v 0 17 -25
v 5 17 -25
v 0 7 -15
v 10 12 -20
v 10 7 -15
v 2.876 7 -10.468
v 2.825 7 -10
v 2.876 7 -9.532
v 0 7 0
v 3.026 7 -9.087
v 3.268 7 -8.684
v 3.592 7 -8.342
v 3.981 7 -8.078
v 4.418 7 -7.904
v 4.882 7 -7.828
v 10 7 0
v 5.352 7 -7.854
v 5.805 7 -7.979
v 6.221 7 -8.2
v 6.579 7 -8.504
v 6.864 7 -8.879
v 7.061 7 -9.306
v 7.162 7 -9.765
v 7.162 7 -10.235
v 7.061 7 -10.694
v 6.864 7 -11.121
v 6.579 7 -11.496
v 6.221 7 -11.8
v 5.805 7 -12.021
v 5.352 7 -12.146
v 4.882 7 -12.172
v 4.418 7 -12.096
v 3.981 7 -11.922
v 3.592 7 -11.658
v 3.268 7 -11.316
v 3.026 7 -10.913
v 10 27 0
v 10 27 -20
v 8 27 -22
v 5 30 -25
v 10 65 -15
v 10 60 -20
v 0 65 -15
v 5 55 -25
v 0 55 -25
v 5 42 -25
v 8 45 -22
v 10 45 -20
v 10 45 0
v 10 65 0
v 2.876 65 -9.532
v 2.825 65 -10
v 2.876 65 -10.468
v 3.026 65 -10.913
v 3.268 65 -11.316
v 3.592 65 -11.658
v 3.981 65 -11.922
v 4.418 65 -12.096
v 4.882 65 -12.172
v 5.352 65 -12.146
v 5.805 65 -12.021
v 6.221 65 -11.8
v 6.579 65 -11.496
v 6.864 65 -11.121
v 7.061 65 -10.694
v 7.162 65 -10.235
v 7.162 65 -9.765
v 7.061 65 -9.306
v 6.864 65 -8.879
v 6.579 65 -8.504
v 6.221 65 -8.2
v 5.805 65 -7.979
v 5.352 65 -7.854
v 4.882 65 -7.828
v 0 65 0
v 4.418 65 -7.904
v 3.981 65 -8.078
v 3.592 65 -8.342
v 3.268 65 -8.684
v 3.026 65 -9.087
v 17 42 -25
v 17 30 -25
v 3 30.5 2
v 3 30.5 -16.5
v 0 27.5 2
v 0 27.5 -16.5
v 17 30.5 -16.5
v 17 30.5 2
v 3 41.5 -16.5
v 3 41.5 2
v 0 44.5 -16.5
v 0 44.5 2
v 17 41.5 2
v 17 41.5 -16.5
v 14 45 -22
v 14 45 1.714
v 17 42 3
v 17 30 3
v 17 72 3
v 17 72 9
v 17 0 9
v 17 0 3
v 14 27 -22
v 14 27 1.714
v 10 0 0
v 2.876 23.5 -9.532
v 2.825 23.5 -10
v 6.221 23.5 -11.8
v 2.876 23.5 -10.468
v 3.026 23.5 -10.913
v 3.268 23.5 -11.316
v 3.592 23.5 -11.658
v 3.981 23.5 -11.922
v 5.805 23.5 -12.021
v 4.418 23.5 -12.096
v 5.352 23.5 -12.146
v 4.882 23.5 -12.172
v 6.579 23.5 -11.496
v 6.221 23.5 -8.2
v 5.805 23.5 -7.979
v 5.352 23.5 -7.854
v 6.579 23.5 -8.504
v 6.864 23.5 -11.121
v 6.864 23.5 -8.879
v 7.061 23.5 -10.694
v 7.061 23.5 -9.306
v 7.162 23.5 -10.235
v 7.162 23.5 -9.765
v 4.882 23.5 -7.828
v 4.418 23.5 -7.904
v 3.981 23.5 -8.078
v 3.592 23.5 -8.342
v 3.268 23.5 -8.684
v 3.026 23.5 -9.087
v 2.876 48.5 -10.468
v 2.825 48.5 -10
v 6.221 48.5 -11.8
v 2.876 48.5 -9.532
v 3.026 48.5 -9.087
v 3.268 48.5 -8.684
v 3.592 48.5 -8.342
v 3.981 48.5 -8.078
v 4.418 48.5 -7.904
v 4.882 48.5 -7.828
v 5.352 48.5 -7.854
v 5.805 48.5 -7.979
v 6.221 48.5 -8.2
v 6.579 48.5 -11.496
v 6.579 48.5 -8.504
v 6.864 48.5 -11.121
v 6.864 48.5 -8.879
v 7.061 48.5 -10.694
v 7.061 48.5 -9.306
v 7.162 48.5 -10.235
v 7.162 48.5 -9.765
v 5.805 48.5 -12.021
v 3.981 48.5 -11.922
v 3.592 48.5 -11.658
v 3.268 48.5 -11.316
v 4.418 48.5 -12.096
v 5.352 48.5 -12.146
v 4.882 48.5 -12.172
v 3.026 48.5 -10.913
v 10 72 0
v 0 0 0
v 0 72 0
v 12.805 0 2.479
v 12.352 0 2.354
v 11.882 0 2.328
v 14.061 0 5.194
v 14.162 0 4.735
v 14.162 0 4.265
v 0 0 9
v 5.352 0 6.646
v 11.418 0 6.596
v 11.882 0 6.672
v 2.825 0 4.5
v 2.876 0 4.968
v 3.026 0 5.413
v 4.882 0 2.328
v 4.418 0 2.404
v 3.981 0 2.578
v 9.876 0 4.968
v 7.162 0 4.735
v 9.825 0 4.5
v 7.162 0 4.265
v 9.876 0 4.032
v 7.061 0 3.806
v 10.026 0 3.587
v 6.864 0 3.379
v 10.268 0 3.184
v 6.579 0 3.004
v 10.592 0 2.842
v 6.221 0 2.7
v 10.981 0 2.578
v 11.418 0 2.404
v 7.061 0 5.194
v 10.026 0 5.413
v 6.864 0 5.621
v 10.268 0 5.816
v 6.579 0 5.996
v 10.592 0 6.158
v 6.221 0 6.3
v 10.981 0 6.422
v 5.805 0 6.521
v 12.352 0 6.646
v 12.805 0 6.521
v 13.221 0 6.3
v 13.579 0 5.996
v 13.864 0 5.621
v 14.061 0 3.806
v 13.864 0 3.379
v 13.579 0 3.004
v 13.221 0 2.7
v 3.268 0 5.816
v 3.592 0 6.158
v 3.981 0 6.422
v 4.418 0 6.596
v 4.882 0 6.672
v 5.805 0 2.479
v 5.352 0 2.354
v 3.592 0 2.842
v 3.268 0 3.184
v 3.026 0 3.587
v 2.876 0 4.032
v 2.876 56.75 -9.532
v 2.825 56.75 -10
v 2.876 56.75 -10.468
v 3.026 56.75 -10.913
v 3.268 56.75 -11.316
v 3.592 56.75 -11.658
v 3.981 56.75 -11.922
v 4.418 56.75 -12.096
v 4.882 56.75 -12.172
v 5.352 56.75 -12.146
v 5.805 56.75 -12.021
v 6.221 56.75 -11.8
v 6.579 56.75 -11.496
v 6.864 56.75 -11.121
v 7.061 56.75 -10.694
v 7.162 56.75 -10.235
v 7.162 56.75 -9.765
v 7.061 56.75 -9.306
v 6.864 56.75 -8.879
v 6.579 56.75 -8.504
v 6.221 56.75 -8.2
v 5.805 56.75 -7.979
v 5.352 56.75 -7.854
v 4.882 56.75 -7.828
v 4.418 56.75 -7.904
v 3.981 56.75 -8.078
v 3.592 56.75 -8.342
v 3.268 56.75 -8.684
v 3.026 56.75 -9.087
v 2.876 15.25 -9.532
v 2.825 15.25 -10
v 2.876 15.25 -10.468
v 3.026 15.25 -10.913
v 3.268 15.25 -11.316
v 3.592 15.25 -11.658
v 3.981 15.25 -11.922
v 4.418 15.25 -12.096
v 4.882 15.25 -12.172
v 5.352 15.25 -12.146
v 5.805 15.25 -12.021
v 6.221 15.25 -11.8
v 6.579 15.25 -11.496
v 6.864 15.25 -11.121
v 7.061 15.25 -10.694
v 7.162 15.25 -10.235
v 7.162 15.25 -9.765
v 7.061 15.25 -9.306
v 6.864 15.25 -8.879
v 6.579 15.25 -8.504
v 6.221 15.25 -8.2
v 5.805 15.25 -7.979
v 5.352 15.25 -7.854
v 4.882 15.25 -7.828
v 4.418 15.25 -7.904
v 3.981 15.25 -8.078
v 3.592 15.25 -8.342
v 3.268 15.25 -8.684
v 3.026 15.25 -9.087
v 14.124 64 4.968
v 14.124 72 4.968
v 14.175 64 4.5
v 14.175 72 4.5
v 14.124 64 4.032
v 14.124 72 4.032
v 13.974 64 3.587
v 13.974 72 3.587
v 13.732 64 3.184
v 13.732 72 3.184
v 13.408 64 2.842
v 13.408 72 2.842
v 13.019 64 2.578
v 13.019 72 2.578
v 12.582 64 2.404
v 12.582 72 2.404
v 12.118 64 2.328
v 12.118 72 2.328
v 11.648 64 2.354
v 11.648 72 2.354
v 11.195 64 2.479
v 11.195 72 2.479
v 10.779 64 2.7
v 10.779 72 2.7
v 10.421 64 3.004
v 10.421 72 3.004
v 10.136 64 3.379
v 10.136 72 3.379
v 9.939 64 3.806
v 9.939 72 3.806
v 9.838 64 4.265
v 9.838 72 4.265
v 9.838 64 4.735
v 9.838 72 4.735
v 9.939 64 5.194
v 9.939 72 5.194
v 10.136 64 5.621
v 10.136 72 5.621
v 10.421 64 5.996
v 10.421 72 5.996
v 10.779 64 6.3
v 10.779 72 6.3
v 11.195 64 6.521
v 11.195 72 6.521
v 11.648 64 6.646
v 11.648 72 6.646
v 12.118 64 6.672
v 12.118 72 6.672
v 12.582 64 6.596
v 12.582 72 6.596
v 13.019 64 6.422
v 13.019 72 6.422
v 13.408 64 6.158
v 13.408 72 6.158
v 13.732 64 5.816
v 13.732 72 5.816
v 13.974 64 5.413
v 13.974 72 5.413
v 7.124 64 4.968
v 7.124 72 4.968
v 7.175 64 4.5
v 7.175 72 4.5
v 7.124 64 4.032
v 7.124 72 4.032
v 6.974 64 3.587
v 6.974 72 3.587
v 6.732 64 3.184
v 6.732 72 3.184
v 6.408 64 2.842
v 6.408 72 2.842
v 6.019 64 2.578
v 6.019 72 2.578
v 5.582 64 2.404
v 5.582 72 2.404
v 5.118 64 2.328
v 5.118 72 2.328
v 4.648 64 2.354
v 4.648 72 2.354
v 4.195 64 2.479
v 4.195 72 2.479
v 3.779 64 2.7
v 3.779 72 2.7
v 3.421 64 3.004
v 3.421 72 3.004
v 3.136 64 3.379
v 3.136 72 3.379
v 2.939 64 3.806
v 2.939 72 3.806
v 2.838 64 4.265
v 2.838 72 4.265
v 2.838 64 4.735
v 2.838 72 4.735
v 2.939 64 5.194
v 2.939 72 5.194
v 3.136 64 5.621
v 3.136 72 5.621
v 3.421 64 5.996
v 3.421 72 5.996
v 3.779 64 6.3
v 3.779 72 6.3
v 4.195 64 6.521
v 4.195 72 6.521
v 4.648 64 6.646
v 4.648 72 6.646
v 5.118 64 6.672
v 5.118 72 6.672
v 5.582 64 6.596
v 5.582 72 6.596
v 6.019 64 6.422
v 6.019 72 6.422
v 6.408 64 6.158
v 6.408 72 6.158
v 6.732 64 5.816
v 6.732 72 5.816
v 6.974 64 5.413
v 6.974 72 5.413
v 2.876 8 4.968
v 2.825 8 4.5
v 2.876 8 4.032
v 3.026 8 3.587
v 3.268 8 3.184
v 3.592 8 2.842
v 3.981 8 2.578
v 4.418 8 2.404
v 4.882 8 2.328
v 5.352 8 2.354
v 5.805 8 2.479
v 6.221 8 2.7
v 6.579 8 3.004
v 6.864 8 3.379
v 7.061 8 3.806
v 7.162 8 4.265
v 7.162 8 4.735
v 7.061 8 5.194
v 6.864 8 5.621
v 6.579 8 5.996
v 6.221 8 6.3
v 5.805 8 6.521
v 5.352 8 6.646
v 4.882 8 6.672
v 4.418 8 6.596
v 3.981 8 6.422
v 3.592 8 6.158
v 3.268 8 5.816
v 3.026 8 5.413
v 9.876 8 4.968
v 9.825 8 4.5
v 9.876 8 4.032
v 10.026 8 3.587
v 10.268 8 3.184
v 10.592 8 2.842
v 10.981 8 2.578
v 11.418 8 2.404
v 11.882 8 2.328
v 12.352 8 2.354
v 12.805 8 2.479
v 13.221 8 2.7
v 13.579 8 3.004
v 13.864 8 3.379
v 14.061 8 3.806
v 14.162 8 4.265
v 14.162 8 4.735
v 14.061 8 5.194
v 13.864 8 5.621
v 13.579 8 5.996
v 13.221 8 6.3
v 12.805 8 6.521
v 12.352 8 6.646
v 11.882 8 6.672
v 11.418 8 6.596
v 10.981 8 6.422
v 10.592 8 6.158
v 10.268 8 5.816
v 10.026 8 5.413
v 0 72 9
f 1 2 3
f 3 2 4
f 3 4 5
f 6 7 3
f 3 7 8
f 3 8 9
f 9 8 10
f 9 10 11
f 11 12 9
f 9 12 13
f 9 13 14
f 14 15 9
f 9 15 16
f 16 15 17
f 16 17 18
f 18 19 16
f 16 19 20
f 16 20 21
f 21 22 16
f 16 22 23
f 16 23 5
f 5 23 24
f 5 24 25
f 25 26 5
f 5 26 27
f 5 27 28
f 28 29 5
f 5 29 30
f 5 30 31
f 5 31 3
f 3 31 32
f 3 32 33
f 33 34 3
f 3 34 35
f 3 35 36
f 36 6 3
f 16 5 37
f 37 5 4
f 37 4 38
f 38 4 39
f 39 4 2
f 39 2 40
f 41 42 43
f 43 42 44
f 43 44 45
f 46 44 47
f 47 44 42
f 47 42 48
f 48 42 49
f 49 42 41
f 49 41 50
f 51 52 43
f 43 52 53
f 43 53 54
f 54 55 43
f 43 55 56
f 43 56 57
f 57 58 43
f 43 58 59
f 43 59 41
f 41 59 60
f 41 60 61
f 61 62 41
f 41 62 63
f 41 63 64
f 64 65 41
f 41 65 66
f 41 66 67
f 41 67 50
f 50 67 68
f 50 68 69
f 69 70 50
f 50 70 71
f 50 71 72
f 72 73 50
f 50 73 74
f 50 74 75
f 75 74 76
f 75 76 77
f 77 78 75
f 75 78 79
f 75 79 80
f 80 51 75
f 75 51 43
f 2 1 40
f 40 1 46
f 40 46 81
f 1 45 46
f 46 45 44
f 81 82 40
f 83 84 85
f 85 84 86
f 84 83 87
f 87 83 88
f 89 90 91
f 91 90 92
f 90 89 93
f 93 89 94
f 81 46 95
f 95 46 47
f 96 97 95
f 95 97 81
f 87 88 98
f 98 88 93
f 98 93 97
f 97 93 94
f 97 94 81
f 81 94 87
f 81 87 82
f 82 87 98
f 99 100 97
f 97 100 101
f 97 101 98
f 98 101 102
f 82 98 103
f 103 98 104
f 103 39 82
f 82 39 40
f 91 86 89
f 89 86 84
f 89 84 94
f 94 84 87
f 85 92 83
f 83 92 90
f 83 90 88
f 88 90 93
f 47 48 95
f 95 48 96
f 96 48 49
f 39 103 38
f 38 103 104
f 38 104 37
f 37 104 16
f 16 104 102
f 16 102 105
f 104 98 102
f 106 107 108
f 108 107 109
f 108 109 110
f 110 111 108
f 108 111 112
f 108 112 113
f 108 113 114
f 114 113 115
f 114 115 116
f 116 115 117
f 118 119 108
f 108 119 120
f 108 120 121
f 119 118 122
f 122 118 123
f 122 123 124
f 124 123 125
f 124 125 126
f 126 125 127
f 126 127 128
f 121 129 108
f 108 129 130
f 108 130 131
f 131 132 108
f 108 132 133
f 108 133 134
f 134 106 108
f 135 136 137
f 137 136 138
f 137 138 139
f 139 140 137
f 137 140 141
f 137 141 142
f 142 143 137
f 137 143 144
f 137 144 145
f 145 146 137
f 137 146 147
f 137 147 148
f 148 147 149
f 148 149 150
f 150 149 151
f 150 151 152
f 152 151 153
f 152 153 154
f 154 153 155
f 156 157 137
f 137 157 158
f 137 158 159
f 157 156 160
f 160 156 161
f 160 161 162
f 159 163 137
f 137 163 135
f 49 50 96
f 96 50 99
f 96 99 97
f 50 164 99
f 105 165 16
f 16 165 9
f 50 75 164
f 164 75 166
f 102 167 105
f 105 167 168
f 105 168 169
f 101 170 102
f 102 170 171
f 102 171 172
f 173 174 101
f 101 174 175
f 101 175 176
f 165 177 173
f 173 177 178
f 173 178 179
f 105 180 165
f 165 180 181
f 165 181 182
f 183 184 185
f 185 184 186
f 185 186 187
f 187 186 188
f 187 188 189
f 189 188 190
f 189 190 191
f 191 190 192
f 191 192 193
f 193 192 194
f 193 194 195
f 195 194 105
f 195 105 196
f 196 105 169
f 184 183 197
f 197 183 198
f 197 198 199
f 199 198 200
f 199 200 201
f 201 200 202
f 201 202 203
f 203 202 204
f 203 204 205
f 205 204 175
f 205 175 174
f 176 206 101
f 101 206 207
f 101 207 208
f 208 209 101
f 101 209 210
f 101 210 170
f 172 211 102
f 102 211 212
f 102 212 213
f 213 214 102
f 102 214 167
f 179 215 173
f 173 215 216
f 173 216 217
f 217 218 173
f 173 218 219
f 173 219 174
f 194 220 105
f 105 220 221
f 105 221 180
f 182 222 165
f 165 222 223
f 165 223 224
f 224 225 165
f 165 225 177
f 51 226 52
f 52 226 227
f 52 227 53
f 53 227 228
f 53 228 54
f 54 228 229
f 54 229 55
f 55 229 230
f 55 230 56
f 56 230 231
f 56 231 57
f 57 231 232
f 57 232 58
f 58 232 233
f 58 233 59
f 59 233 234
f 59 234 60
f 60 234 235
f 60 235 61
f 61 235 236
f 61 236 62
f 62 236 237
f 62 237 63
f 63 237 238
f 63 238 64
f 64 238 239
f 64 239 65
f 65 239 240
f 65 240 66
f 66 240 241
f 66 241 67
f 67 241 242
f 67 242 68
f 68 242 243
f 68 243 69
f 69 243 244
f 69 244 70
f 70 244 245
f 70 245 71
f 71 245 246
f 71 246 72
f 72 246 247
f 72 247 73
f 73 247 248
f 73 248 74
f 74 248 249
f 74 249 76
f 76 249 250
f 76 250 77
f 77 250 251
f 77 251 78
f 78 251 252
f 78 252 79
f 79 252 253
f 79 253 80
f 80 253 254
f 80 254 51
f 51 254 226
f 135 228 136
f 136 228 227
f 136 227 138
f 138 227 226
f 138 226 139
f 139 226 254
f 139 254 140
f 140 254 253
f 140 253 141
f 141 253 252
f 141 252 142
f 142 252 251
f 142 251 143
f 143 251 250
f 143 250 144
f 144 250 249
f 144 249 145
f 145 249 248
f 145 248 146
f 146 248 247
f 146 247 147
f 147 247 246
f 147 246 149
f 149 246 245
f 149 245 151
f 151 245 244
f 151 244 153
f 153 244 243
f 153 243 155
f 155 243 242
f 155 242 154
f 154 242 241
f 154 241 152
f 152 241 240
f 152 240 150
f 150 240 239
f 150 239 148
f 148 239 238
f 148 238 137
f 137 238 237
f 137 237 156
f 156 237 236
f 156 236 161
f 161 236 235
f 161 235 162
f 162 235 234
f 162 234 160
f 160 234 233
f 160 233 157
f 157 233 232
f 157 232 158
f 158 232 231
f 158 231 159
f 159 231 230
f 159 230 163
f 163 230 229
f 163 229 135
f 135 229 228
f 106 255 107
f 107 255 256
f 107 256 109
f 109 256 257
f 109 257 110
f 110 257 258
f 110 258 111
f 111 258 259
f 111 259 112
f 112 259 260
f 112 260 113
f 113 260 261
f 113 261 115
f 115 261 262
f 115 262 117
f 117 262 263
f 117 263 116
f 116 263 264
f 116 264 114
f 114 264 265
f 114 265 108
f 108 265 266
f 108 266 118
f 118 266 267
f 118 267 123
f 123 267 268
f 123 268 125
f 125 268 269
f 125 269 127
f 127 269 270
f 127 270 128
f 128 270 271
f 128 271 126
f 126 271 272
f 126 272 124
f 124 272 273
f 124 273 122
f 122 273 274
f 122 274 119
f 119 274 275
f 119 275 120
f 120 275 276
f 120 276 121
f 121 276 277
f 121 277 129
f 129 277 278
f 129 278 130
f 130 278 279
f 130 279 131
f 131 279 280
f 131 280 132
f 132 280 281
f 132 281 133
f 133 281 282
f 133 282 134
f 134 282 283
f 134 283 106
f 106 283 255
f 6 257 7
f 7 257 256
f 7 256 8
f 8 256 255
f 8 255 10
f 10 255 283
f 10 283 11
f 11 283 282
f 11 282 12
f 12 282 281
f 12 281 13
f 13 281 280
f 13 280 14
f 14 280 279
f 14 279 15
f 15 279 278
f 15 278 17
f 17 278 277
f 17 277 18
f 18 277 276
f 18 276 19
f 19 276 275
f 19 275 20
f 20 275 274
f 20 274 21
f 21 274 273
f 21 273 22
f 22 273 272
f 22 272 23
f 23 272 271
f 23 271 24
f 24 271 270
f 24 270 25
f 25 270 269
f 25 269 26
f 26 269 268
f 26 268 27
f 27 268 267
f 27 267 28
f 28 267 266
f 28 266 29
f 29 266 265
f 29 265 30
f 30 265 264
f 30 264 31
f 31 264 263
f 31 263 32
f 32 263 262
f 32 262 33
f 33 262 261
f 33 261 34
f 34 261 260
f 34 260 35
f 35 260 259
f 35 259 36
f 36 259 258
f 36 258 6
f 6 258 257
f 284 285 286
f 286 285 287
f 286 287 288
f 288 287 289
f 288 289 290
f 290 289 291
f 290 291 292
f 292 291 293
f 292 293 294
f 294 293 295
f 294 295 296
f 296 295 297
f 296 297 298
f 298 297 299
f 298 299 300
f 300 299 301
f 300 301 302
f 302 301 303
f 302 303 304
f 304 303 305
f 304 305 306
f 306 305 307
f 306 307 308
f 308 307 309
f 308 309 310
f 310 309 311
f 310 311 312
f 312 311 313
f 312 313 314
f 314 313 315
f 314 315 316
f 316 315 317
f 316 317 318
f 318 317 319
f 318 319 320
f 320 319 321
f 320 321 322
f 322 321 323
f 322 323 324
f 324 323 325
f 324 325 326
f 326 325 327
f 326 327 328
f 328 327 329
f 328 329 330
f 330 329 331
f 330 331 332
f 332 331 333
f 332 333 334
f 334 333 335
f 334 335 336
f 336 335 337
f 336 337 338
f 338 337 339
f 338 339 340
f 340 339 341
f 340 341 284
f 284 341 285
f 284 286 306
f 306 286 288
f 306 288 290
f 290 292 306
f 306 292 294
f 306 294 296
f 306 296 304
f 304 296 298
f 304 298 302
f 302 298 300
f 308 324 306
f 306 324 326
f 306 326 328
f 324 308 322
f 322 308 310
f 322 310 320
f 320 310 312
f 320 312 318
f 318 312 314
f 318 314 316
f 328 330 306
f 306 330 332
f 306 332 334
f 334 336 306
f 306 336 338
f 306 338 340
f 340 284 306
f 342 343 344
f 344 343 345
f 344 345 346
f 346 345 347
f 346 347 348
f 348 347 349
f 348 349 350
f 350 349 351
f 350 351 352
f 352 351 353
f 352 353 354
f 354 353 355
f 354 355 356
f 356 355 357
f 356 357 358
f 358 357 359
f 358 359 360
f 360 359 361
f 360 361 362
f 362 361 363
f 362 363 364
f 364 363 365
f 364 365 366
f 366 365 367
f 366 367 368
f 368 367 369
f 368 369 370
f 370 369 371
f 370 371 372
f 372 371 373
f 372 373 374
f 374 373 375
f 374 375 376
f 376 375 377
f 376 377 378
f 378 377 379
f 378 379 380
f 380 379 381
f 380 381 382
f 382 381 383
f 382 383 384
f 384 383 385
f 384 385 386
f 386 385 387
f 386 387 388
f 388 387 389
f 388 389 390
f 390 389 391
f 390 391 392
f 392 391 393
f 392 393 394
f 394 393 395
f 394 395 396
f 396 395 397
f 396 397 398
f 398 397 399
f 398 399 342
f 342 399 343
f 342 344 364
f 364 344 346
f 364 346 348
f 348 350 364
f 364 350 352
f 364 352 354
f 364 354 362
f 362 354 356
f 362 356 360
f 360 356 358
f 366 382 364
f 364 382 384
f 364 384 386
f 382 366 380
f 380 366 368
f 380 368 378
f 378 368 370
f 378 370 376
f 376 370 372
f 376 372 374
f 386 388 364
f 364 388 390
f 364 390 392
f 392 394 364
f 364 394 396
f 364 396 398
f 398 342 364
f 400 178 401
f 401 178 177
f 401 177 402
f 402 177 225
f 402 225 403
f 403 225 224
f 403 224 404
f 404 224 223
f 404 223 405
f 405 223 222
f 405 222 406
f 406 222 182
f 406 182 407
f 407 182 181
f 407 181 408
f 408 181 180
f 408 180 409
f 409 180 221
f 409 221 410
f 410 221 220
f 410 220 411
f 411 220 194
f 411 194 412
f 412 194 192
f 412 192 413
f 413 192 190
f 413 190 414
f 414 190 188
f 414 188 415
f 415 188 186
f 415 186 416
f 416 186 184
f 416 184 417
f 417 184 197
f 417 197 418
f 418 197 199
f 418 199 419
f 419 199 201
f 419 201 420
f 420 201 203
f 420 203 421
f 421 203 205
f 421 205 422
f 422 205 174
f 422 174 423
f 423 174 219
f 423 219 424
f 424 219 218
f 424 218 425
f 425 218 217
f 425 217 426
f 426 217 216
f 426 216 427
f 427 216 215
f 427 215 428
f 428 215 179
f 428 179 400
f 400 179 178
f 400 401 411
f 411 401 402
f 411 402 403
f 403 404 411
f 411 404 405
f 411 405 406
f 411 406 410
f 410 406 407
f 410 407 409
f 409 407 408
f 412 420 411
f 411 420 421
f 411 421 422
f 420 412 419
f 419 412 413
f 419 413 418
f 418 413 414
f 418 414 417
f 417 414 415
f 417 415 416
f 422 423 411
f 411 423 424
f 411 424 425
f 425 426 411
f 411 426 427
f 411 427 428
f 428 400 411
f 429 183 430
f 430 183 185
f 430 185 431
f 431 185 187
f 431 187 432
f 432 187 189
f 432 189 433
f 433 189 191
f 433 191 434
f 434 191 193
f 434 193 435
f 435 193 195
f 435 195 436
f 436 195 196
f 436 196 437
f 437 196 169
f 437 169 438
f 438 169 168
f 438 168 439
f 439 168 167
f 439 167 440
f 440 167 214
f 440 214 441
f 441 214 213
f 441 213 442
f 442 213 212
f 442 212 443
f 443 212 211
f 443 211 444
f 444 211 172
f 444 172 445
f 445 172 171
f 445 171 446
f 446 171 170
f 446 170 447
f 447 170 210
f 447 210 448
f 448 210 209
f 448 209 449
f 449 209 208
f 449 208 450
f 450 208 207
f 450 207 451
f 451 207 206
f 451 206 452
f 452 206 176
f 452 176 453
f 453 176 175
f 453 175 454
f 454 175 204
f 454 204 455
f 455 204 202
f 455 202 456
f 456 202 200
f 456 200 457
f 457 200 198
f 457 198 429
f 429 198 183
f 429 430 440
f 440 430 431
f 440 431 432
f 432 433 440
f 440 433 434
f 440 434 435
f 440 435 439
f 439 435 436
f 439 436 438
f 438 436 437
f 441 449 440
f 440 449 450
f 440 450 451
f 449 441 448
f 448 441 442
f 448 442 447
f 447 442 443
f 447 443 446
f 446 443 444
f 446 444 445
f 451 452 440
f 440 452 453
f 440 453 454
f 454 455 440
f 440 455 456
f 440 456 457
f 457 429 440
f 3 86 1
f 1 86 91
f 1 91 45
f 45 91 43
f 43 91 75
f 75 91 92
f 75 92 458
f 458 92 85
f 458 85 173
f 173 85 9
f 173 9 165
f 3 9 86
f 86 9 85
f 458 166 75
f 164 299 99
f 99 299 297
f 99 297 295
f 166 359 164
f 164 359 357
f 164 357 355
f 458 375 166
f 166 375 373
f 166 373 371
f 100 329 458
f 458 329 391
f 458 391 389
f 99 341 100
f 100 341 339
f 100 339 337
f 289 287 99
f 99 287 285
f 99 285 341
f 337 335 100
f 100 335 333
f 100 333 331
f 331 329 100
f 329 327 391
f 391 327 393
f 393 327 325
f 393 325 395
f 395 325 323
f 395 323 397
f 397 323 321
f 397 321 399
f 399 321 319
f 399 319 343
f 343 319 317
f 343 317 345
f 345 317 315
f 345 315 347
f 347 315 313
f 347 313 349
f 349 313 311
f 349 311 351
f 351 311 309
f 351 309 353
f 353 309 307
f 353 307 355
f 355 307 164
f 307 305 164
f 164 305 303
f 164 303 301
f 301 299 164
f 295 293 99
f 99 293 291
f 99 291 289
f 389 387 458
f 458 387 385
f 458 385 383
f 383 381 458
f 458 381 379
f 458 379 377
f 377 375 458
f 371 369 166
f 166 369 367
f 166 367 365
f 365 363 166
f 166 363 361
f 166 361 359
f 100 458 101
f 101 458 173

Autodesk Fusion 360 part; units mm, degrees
sketch "Esquisse1" plane through (0, 0, 0) normal (0, 0, 1) x (1, 0, 0)
  line L0 (17, 0) -> (0, 0)
  line L1 (0, 0) -> (0, 72)
  line L2 (0, 72) -> (17, 72)
  line L3 (17, 72) -> (17, 0)
  dimension "d3" = 72
  dimension "d4" = 17
extrude "Extrusion1" add sketch "Esquisse1" along normal blind 9
sketch "Esquisse2" plane through (0, 0, 0) normal (0, -1, 0) x (1, 0, 0)
  line L0 (0, 0) -> (17, 0)
  line L1 (17, 9) -> (0, 9)
  line L2 (0, 9) -> (0, 0)
  line L3 (-5.7525, 4.5) -> (21.5406, 4.5) construction
  circle A0 centre (5, 4.5) radius 2.175
  circle A1 centre (12, 4.5) radius 2.175
  line L4 (17, 0) -> (17, 9)
  dimension "d7" = 4.35
  dimension "d8" = 7
  dimension "d9" = 4.5
  dimension "d10" = 5
extrude "Extrusion2" cut sketch "Esquisse2" against normal blind 8 contours A0 | A1
sketch "Esquisse3" plane through (0, 72, 0) normal (0, 1, 0) x (-1, 0, 0)
  line L0 (-17, 0) -> (0, 0)
  line L1 (0, 0) -> (0, 9)
  line L2 (0, 9) -> (-17, 9)
  line L3 (5.6122, 4.5) -> (-27.7174, 4.5) construction
  circle A0 centre (-12, 4.5) radius 2.175
  circle A1 centre (-5, 4.5) radius 2.175
  line L4 (-17, 9) -> (-17, 0)
  dimension "d13" = 4.5
  dimension "d14" = 7
  dimension "d15" = 5
  dimension "d16" = 4.35
extrude "Extrusion3" cut sketch "Esquisse3" against normal blind 8 contours A0 | A1
sketch "Esquisse9" plane through (0, 0, 0) normal (-1, 0, 0) x (0, 0, 1)
  line L0 (0, 72) -> (0, 0)
  line L1 (0, 0) -> (9, 0)
  line L2 (9, 0) -> (9, 72)
  line L3 (9, 72) -> (0, 72)
  line L4 (9, 65) -> (-15, 65)
  line L5 (-15, 65) -> (-15, 48.5)
  line L6 (-15, 48.5) -> (9, 48.5)
  line L7 (9, 48.5) -> (9, 65)
  line L8 (9, 7) -> (-15, 7)
  line L9 (-15, 7) -> (-15, 23.5)
  line L10 (-15, 23.5) -> (9, 23.5)
  line L11 (9, 23.5) -> (9, 7)
  line L12 (6.675, 72) -> (2.325, 72)
  dimension "d48" = 7
  dimension "d49" = 7
  dimension "d50" = 25
  dimension "d51" = 15
extrude "Extrusion7" add sketch "Esquisse9" against normal blind 10 contours L0 L4 L5 L6 | L0 L8 L9 L10
sketch "Esquisse10" plane through (0, 7, 0) normal (0, -1, 0) x (1, 0, 0)
  line L0 (0, -15) -> (10, -15)
  line L1 (10, -15) -> (10, 0)
  line L2 (10, 0) -> (0, 0)
  line L3 (0, 0) -> (0, -15)
  circle A0 centre (5, -10) radius 2.175
  dimension "d56" = 4.35
  dimension "d57" = 5
  dimension "d76" = 5
extrude "Extrusion9" cut sketch "Esquisse10" against normal blind 61 contours A0
sketch "Esquisse11" plane through (0, 48.5, 0) normal (0, -1, 0) x (1, 0, 0)
  circle A0 centre (5, -10) radius 2.175
  line L0 (10, -15) -> (10, 0)
  line L1 (10, 0) -> (0, 0)
  line L2 (0, 0) -> (0, -15)
  line L3 (0, -15) -> (10, -15)
chamfer "Chanfrein4" distance 7 distance2 3 1 edges at (17, 36, 0) measured on face at (3.3333, 40.1667, 0)
sketch "Esquisse12" plane through (0, 0, -15) normal (0, 0, -1) x (-1, 0, 0)
  line L0 (0, 48.5) -> (0, 65)
  line L1 (0, 65) -> (-10, 65)
  line L2 (-10, 65) -> (-10, 48.5)
  line L3 (-10, 48.5) -> (0, 48.5)
  line L4 (-10, 65) -> (0, 65)
  line L5 (0, 65) -> (0, 7)
  line L6 (0, 7) -> (-10, 7)
  line L7 (-10, 7) -> (-10, 65)
  line L8 (0, 7) -> (-10, 7)
extrude "Extrusion10" add sketch "Esquisse12" along normal blind 10
extrude "Extrusion11" add 1 faces at (3.3333, 31.8333, -15) along direction (0, 0, 1) up to surface (15 mm away)
sketch "Esquisse13" plane through (0, 0, -25) normal (0, 0, -1) x (-1, 0, 0)
  line L0 (0, 7) -> (0, 65)
  line L1 (-10, 65) -> (-10, 7)
  line L2 (-10, 27) -> (-17, 27)
  line L3 (-17, 27) -> (-17, 45)
  line L4 (-17, 45) -> (-10, 45)
  line L5 (-10, 45) -> (-10, 27)
  line L6 (0, 65) -> (-10, 65)
  line L7 (-10, 7) -> (0, 7)
  dimension "d82" = 7
extrude "Extrusion12" add sketch "Esquisse13" against normal blind 28 contours L1 L2 L3 L4 L5
sketch "Esquisse15" plane through (17, 0, 0) normal (1, 0, 0) x (0, 0, -1)
  line L0 (-3, 45) -> (-3, 72)
  line L1 (-3, 72) -> (-9, 72)
  line L2 (-9, 72) -> (-9, 0)
  line L3 (-9, 0) -> (-3, 0)
  line L4 (16.5, 30.5) -> (-2, 30.5)
  line L5 (-2, 30.5) -> (-2, 41.5)
  line L6 (-2, 41.5) -> (16.5, 41.5)
  line L7 (16.5, 41.5) -> (16.5, 30.5)
  line L8 (-3, 0) -> (-3, 27)
  line L9 (-3, 27) -> (25, 27)
  line L10 (25, 27) -> (25, 45)
  line L11 (25, 45) -> (-3, 45)
  dimension "d96" = 7
extrude "Extrusion13" cut sketch "Esquisse15" against normal blind 27 contours L4 L5 L6 L7
chamfer "Chanfrein6" distance 3 angle 45 6 edges at (17, 27, -11) (17, 45, -11) (13.5, 27, -25) (13.5, 45, -25) (0, 41.5, -7.25) (0, 30.5, -7.25)
chamfer "Chanfrein7" distance 5 distance2 5 2 edges at (10, 53.5, -25) (10, 18.5, -25) measured on face at (3.3333, 38, -25) measured on face at (3.3333, 38, -25)
chamfer "Chanfrein8" distance 10 distance2 10 2 edges at (2.5, 65, -25) (2.5, 7, -25) measured on face at (13, 38, -25) measured on face at (13, 38, -25)
equation "d49 = d48"
